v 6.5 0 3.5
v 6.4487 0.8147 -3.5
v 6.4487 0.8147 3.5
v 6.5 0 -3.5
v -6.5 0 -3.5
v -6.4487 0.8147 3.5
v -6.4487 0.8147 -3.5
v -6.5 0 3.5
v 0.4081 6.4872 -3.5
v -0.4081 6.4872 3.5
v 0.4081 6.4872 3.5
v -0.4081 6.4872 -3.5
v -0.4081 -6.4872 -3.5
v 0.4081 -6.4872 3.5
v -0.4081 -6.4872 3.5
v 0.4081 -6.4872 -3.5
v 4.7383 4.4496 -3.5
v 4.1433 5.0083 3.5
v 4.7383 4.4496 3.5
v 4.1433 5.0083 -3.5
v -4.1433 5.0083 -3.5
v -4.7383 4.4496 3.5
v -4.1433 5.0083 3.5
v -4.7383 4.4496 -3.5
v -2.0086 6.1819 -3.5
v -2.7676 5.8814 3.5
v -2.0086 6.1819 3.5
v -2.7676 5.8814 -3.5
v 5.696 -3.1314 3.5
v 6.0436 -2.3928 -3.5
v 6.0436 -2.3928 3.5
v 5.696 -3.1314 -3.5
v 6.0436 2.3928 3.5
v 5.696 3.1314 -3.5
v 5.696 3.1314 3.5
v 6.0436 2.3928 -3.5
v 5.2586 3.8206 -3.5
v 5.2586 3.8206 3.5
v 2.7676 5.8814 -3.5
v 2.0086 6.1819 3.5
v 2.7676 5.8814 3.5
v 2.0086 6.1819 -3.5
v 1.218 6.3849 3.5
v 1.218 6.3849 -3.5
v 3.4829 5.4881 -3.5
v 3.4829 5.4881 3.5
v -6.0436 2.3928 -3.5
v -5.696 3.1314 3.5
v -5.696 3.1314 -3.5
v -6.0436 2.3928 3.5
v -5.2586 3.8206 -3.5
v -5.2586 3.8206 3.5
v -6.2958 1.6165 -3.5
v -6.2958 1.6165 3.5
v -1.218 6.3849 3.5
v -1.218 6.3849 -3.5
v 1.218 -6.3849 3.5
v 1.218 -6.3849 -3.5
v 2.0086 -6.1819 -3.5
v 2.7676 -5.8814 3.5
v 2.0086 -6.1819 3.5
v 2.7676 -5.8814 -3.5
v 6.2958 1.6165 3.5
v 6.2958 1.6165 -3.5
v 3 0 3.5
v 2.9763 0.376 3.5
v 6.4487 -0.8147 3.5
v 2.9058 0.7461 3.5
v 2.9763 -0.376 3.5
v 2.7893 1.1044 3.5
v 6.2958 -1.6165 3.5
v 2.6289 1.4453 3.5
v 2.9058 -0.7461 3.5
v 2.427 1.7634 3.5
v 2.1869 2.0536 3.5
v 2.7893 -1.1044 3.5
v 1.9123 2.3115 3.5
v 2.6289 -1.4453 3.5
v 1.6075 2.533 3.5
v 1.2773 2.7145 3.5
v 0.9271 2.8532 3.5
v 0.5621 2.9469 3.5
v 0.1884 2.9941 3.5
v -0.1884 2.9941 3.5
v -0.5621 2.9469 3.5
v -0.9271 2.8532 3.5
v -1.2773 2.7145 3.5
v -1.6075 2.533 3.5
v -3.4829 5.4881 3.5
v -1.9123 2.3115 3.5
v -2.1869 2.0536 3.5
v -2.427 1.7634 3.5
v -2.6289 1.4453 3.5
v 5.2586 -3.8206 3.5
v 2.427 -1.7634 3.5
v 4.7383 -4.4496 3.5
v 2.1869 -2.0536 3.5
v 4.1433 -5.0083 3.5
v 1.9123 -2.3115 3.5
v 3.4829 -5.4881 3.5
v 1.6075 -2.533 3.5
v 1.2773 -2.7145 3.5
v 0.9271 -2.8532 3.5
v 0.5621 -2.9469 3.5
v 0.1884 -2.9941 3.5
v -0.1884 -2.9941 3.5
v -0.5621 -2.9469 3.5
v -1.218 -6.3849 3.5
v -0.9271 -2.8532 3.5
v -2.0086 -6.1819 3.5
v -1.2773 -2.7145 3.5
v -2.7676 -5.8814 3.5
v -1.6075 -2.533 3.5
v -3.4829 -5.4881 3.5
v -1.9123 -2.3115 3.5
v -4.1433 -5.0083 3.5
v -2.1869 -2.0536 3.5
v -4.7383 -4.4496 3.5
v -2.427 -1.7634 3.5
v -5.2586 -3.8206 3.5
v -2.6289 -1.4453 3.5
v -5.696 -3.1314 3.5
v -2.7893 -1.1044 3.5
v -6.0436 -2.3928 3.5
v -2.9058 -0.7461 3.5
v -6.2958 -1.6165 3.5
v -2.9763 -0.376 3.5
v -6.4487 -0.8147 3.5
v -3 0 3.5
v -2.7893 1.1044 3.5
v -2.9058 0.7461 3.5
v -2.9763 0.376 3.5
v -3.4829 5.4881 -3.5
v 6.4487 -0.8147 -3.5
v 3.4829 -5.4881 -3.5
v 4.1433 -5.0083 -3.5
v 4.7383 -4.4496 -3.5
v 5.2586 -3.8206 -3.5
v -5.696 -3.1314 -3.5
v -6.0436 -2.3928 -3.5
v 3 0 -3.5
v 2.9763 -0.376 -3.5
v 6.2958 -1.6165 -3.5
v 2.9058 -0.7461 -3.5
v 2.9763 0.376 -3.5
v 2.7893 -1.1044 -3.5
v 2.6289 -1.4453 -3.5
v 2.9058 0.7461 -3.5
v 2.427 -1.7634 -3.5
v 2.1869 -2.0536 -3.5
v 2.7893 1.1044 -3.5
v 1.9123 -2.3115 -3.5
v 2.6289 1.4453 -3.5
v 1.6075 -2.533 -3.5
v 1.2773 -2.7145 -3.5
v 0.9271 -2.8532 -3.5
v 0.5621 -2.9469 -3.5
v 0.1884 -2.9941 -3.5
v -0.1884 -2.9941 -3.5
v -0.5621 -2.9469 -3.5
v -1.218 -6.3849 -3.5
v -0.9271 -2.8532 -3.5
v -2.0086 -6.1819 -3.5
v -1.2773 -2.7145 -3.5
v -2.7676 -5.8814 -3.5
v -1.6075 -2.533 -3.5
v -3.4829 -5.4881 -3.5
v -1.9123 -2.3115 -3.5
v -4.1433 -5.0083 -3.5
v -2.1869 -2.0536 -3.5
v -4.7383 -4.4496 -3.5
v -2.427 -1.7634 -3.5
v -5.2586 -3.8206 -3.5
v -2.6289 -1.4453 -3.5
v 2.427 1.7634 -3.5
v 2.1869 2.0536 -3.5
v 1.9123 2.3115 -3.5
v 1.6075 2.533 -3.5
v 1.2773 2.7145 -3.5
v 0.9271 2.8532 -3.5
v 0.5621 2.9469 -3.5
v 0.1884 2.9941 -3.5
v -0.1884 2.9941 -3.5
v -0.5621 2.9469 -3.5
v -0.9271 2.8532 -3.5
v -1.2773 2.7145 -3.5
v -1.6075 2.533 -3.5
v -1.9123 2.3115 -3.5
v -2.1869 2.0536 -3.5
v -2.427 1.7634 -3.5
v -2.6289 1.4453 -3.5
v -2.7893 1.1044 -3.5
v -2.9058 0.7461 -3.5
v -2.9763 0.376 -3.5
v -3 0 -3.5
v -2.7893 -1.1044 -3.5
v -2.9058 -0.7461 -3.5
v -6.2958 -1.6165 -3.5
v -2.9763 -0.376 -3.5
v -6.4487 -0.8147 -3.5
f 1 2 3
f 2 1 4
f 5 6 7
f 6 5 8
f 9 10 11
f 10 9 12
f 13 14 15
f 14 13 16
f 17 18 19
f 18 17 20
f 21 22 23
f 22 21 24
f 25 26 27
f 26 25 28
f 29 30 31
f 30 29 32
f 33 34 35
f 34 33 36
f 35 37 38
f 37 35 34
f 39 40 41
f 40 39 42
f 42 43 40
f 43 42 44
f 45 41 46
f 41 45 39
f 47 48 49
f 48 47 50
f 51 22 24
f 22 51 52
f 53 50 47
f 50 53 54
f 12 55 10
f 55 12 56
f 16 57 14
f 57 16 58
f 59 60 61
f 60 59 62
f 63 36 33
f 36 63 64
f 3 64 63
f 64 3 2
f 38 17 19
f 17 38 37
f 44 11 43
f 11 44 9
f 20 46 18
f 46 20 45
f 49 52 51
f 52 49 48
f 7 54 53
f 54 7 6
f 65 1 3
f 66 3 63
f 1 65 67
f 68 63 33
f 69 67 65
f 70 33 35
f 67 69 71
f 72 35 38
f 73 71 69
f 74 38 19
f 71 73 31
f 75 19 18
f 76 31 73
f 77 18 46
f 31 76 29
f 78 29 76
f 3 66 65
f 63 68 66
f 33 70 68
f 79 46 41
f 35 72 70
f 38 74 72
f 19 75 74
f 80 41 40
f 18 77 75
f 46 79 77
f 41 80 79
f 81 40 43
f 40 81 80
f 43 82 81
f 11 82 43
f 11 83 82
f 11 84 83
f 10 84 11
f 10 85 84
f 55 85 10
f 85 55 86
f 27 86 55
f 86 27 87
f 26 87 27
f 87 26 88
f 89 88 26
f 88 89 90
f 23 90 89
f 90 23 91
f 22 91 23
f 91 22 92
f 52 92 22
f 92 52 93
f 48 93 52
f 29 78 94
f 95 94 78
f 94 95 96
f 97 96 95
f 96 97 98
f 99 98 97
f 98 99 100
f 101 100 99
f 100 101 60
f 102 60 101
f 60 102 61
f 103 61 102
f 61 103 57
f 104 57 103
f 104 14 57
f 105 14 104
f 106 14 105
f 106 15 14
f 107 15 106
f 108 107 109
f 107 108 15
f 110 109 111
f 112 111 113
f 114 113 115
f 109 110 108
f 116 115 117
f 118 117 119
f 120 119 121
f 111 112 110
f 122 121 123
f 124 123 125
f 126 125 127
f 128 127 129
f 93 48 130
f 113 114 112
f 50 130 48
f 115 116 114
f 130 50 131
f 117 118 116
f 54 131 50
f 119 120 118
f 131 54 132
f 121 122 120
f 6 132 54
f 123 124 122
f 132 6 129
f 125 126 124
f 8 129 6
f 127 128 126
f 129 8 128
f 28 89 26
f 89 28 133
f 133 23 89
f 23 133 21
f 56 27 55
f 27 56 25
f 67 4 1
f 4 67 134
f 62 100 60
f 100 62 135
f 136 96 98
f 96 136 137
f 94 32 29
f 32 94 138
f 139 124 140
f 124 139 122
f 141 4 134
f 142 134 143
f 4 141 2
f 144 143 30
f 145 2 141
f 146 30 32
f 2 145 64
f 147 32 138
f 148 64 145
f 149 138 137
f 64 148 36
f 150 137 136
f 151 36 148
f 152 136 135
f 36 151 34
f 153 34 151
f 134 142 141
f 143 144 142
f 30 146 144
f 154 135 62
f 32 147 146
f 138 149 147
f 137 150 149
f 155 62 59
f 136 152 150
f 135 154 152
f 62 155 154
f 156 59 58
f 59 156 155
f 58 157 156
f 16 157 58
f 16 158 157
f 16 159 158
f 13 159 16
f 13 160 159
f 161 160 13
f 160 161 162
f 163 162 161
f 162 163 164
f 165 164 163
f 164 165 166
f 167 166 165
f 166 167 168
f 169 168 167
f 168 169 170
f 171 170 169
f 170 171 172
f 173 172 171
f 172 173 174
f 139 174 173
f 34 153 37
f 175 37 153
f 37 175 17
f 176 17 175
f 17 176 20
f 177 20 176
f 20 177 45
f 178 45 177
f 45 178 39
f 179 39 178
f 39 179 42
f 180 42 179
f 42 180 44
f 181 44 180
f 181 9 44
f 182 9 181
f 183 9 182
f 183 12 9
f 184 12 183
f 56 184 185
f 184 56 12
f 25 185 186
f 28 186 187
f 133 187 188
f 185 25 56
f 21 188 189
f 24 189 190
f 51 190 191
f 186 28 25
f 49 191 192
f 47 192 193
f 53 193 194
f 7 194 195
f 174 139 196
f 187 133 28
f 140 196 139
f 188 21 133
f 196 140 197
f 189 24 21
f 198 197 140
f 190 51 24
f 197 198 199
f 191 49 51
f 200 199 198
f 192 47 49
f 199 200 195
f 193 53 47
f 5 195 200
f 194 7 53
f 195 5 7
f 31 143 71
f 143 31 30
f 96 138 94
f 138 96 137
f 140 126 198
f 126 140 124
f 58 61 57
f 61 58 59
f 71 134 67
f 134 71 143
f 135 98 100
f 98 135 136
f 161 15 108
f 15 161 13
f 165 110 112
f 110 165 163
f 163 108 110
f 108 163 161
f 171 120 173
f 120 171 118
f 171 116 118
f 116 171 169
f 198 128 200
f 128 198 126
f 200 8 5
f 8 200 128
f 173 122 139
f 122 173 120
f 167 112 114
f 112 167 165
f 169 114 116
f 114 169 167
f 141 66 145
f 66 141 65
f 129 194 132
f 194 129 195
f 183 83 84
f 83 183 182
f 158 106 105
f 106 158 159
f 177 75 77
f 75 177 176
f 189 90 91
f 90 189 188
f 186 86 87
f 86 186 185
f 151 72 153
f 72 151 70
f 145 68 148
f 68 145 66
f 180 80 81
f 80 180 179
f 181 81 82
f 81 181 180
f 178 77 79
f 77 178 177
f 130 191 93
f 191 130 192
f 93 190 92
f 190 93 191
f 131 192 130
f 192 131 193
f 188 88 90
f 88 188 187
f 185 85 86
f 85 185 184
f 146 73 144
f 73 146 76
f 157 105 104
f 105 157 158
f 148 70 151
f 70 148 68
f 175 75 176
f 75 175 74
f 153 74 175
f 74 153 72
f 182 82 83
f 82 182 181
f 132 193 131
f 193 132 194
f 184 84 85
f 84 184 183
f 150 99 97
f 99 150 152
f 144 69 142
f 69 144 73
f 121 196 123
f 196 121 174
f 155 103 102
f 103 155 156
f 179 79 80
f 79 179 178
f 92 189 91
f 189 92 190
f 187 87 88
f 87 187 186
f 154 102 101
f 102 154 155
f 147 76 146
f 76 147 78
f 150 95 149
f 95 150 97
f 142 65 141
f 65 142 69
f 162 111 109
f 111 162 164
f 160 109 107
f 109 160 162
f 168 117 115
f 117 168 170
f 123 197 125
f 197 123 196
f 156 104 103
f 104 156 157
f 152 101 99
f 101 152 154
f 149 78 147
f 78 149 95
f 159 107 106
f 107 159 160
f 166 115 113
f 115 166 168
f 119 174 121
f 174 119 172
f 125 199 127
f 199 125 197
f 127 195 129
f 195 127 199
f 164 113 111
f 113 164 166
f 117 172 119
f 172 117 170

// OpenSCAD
$fn = 50;


difference() {
	union() {
		translate(v = [0, 0, -3.5000000000]) {
			cylinder(h = 7, r = 6.5000000000);
		}
	}
	union() {
		translate(v = [0, 0, -100.0000000000]) {
			cylinder(h = 200, r = 3);
		}
	}
}
